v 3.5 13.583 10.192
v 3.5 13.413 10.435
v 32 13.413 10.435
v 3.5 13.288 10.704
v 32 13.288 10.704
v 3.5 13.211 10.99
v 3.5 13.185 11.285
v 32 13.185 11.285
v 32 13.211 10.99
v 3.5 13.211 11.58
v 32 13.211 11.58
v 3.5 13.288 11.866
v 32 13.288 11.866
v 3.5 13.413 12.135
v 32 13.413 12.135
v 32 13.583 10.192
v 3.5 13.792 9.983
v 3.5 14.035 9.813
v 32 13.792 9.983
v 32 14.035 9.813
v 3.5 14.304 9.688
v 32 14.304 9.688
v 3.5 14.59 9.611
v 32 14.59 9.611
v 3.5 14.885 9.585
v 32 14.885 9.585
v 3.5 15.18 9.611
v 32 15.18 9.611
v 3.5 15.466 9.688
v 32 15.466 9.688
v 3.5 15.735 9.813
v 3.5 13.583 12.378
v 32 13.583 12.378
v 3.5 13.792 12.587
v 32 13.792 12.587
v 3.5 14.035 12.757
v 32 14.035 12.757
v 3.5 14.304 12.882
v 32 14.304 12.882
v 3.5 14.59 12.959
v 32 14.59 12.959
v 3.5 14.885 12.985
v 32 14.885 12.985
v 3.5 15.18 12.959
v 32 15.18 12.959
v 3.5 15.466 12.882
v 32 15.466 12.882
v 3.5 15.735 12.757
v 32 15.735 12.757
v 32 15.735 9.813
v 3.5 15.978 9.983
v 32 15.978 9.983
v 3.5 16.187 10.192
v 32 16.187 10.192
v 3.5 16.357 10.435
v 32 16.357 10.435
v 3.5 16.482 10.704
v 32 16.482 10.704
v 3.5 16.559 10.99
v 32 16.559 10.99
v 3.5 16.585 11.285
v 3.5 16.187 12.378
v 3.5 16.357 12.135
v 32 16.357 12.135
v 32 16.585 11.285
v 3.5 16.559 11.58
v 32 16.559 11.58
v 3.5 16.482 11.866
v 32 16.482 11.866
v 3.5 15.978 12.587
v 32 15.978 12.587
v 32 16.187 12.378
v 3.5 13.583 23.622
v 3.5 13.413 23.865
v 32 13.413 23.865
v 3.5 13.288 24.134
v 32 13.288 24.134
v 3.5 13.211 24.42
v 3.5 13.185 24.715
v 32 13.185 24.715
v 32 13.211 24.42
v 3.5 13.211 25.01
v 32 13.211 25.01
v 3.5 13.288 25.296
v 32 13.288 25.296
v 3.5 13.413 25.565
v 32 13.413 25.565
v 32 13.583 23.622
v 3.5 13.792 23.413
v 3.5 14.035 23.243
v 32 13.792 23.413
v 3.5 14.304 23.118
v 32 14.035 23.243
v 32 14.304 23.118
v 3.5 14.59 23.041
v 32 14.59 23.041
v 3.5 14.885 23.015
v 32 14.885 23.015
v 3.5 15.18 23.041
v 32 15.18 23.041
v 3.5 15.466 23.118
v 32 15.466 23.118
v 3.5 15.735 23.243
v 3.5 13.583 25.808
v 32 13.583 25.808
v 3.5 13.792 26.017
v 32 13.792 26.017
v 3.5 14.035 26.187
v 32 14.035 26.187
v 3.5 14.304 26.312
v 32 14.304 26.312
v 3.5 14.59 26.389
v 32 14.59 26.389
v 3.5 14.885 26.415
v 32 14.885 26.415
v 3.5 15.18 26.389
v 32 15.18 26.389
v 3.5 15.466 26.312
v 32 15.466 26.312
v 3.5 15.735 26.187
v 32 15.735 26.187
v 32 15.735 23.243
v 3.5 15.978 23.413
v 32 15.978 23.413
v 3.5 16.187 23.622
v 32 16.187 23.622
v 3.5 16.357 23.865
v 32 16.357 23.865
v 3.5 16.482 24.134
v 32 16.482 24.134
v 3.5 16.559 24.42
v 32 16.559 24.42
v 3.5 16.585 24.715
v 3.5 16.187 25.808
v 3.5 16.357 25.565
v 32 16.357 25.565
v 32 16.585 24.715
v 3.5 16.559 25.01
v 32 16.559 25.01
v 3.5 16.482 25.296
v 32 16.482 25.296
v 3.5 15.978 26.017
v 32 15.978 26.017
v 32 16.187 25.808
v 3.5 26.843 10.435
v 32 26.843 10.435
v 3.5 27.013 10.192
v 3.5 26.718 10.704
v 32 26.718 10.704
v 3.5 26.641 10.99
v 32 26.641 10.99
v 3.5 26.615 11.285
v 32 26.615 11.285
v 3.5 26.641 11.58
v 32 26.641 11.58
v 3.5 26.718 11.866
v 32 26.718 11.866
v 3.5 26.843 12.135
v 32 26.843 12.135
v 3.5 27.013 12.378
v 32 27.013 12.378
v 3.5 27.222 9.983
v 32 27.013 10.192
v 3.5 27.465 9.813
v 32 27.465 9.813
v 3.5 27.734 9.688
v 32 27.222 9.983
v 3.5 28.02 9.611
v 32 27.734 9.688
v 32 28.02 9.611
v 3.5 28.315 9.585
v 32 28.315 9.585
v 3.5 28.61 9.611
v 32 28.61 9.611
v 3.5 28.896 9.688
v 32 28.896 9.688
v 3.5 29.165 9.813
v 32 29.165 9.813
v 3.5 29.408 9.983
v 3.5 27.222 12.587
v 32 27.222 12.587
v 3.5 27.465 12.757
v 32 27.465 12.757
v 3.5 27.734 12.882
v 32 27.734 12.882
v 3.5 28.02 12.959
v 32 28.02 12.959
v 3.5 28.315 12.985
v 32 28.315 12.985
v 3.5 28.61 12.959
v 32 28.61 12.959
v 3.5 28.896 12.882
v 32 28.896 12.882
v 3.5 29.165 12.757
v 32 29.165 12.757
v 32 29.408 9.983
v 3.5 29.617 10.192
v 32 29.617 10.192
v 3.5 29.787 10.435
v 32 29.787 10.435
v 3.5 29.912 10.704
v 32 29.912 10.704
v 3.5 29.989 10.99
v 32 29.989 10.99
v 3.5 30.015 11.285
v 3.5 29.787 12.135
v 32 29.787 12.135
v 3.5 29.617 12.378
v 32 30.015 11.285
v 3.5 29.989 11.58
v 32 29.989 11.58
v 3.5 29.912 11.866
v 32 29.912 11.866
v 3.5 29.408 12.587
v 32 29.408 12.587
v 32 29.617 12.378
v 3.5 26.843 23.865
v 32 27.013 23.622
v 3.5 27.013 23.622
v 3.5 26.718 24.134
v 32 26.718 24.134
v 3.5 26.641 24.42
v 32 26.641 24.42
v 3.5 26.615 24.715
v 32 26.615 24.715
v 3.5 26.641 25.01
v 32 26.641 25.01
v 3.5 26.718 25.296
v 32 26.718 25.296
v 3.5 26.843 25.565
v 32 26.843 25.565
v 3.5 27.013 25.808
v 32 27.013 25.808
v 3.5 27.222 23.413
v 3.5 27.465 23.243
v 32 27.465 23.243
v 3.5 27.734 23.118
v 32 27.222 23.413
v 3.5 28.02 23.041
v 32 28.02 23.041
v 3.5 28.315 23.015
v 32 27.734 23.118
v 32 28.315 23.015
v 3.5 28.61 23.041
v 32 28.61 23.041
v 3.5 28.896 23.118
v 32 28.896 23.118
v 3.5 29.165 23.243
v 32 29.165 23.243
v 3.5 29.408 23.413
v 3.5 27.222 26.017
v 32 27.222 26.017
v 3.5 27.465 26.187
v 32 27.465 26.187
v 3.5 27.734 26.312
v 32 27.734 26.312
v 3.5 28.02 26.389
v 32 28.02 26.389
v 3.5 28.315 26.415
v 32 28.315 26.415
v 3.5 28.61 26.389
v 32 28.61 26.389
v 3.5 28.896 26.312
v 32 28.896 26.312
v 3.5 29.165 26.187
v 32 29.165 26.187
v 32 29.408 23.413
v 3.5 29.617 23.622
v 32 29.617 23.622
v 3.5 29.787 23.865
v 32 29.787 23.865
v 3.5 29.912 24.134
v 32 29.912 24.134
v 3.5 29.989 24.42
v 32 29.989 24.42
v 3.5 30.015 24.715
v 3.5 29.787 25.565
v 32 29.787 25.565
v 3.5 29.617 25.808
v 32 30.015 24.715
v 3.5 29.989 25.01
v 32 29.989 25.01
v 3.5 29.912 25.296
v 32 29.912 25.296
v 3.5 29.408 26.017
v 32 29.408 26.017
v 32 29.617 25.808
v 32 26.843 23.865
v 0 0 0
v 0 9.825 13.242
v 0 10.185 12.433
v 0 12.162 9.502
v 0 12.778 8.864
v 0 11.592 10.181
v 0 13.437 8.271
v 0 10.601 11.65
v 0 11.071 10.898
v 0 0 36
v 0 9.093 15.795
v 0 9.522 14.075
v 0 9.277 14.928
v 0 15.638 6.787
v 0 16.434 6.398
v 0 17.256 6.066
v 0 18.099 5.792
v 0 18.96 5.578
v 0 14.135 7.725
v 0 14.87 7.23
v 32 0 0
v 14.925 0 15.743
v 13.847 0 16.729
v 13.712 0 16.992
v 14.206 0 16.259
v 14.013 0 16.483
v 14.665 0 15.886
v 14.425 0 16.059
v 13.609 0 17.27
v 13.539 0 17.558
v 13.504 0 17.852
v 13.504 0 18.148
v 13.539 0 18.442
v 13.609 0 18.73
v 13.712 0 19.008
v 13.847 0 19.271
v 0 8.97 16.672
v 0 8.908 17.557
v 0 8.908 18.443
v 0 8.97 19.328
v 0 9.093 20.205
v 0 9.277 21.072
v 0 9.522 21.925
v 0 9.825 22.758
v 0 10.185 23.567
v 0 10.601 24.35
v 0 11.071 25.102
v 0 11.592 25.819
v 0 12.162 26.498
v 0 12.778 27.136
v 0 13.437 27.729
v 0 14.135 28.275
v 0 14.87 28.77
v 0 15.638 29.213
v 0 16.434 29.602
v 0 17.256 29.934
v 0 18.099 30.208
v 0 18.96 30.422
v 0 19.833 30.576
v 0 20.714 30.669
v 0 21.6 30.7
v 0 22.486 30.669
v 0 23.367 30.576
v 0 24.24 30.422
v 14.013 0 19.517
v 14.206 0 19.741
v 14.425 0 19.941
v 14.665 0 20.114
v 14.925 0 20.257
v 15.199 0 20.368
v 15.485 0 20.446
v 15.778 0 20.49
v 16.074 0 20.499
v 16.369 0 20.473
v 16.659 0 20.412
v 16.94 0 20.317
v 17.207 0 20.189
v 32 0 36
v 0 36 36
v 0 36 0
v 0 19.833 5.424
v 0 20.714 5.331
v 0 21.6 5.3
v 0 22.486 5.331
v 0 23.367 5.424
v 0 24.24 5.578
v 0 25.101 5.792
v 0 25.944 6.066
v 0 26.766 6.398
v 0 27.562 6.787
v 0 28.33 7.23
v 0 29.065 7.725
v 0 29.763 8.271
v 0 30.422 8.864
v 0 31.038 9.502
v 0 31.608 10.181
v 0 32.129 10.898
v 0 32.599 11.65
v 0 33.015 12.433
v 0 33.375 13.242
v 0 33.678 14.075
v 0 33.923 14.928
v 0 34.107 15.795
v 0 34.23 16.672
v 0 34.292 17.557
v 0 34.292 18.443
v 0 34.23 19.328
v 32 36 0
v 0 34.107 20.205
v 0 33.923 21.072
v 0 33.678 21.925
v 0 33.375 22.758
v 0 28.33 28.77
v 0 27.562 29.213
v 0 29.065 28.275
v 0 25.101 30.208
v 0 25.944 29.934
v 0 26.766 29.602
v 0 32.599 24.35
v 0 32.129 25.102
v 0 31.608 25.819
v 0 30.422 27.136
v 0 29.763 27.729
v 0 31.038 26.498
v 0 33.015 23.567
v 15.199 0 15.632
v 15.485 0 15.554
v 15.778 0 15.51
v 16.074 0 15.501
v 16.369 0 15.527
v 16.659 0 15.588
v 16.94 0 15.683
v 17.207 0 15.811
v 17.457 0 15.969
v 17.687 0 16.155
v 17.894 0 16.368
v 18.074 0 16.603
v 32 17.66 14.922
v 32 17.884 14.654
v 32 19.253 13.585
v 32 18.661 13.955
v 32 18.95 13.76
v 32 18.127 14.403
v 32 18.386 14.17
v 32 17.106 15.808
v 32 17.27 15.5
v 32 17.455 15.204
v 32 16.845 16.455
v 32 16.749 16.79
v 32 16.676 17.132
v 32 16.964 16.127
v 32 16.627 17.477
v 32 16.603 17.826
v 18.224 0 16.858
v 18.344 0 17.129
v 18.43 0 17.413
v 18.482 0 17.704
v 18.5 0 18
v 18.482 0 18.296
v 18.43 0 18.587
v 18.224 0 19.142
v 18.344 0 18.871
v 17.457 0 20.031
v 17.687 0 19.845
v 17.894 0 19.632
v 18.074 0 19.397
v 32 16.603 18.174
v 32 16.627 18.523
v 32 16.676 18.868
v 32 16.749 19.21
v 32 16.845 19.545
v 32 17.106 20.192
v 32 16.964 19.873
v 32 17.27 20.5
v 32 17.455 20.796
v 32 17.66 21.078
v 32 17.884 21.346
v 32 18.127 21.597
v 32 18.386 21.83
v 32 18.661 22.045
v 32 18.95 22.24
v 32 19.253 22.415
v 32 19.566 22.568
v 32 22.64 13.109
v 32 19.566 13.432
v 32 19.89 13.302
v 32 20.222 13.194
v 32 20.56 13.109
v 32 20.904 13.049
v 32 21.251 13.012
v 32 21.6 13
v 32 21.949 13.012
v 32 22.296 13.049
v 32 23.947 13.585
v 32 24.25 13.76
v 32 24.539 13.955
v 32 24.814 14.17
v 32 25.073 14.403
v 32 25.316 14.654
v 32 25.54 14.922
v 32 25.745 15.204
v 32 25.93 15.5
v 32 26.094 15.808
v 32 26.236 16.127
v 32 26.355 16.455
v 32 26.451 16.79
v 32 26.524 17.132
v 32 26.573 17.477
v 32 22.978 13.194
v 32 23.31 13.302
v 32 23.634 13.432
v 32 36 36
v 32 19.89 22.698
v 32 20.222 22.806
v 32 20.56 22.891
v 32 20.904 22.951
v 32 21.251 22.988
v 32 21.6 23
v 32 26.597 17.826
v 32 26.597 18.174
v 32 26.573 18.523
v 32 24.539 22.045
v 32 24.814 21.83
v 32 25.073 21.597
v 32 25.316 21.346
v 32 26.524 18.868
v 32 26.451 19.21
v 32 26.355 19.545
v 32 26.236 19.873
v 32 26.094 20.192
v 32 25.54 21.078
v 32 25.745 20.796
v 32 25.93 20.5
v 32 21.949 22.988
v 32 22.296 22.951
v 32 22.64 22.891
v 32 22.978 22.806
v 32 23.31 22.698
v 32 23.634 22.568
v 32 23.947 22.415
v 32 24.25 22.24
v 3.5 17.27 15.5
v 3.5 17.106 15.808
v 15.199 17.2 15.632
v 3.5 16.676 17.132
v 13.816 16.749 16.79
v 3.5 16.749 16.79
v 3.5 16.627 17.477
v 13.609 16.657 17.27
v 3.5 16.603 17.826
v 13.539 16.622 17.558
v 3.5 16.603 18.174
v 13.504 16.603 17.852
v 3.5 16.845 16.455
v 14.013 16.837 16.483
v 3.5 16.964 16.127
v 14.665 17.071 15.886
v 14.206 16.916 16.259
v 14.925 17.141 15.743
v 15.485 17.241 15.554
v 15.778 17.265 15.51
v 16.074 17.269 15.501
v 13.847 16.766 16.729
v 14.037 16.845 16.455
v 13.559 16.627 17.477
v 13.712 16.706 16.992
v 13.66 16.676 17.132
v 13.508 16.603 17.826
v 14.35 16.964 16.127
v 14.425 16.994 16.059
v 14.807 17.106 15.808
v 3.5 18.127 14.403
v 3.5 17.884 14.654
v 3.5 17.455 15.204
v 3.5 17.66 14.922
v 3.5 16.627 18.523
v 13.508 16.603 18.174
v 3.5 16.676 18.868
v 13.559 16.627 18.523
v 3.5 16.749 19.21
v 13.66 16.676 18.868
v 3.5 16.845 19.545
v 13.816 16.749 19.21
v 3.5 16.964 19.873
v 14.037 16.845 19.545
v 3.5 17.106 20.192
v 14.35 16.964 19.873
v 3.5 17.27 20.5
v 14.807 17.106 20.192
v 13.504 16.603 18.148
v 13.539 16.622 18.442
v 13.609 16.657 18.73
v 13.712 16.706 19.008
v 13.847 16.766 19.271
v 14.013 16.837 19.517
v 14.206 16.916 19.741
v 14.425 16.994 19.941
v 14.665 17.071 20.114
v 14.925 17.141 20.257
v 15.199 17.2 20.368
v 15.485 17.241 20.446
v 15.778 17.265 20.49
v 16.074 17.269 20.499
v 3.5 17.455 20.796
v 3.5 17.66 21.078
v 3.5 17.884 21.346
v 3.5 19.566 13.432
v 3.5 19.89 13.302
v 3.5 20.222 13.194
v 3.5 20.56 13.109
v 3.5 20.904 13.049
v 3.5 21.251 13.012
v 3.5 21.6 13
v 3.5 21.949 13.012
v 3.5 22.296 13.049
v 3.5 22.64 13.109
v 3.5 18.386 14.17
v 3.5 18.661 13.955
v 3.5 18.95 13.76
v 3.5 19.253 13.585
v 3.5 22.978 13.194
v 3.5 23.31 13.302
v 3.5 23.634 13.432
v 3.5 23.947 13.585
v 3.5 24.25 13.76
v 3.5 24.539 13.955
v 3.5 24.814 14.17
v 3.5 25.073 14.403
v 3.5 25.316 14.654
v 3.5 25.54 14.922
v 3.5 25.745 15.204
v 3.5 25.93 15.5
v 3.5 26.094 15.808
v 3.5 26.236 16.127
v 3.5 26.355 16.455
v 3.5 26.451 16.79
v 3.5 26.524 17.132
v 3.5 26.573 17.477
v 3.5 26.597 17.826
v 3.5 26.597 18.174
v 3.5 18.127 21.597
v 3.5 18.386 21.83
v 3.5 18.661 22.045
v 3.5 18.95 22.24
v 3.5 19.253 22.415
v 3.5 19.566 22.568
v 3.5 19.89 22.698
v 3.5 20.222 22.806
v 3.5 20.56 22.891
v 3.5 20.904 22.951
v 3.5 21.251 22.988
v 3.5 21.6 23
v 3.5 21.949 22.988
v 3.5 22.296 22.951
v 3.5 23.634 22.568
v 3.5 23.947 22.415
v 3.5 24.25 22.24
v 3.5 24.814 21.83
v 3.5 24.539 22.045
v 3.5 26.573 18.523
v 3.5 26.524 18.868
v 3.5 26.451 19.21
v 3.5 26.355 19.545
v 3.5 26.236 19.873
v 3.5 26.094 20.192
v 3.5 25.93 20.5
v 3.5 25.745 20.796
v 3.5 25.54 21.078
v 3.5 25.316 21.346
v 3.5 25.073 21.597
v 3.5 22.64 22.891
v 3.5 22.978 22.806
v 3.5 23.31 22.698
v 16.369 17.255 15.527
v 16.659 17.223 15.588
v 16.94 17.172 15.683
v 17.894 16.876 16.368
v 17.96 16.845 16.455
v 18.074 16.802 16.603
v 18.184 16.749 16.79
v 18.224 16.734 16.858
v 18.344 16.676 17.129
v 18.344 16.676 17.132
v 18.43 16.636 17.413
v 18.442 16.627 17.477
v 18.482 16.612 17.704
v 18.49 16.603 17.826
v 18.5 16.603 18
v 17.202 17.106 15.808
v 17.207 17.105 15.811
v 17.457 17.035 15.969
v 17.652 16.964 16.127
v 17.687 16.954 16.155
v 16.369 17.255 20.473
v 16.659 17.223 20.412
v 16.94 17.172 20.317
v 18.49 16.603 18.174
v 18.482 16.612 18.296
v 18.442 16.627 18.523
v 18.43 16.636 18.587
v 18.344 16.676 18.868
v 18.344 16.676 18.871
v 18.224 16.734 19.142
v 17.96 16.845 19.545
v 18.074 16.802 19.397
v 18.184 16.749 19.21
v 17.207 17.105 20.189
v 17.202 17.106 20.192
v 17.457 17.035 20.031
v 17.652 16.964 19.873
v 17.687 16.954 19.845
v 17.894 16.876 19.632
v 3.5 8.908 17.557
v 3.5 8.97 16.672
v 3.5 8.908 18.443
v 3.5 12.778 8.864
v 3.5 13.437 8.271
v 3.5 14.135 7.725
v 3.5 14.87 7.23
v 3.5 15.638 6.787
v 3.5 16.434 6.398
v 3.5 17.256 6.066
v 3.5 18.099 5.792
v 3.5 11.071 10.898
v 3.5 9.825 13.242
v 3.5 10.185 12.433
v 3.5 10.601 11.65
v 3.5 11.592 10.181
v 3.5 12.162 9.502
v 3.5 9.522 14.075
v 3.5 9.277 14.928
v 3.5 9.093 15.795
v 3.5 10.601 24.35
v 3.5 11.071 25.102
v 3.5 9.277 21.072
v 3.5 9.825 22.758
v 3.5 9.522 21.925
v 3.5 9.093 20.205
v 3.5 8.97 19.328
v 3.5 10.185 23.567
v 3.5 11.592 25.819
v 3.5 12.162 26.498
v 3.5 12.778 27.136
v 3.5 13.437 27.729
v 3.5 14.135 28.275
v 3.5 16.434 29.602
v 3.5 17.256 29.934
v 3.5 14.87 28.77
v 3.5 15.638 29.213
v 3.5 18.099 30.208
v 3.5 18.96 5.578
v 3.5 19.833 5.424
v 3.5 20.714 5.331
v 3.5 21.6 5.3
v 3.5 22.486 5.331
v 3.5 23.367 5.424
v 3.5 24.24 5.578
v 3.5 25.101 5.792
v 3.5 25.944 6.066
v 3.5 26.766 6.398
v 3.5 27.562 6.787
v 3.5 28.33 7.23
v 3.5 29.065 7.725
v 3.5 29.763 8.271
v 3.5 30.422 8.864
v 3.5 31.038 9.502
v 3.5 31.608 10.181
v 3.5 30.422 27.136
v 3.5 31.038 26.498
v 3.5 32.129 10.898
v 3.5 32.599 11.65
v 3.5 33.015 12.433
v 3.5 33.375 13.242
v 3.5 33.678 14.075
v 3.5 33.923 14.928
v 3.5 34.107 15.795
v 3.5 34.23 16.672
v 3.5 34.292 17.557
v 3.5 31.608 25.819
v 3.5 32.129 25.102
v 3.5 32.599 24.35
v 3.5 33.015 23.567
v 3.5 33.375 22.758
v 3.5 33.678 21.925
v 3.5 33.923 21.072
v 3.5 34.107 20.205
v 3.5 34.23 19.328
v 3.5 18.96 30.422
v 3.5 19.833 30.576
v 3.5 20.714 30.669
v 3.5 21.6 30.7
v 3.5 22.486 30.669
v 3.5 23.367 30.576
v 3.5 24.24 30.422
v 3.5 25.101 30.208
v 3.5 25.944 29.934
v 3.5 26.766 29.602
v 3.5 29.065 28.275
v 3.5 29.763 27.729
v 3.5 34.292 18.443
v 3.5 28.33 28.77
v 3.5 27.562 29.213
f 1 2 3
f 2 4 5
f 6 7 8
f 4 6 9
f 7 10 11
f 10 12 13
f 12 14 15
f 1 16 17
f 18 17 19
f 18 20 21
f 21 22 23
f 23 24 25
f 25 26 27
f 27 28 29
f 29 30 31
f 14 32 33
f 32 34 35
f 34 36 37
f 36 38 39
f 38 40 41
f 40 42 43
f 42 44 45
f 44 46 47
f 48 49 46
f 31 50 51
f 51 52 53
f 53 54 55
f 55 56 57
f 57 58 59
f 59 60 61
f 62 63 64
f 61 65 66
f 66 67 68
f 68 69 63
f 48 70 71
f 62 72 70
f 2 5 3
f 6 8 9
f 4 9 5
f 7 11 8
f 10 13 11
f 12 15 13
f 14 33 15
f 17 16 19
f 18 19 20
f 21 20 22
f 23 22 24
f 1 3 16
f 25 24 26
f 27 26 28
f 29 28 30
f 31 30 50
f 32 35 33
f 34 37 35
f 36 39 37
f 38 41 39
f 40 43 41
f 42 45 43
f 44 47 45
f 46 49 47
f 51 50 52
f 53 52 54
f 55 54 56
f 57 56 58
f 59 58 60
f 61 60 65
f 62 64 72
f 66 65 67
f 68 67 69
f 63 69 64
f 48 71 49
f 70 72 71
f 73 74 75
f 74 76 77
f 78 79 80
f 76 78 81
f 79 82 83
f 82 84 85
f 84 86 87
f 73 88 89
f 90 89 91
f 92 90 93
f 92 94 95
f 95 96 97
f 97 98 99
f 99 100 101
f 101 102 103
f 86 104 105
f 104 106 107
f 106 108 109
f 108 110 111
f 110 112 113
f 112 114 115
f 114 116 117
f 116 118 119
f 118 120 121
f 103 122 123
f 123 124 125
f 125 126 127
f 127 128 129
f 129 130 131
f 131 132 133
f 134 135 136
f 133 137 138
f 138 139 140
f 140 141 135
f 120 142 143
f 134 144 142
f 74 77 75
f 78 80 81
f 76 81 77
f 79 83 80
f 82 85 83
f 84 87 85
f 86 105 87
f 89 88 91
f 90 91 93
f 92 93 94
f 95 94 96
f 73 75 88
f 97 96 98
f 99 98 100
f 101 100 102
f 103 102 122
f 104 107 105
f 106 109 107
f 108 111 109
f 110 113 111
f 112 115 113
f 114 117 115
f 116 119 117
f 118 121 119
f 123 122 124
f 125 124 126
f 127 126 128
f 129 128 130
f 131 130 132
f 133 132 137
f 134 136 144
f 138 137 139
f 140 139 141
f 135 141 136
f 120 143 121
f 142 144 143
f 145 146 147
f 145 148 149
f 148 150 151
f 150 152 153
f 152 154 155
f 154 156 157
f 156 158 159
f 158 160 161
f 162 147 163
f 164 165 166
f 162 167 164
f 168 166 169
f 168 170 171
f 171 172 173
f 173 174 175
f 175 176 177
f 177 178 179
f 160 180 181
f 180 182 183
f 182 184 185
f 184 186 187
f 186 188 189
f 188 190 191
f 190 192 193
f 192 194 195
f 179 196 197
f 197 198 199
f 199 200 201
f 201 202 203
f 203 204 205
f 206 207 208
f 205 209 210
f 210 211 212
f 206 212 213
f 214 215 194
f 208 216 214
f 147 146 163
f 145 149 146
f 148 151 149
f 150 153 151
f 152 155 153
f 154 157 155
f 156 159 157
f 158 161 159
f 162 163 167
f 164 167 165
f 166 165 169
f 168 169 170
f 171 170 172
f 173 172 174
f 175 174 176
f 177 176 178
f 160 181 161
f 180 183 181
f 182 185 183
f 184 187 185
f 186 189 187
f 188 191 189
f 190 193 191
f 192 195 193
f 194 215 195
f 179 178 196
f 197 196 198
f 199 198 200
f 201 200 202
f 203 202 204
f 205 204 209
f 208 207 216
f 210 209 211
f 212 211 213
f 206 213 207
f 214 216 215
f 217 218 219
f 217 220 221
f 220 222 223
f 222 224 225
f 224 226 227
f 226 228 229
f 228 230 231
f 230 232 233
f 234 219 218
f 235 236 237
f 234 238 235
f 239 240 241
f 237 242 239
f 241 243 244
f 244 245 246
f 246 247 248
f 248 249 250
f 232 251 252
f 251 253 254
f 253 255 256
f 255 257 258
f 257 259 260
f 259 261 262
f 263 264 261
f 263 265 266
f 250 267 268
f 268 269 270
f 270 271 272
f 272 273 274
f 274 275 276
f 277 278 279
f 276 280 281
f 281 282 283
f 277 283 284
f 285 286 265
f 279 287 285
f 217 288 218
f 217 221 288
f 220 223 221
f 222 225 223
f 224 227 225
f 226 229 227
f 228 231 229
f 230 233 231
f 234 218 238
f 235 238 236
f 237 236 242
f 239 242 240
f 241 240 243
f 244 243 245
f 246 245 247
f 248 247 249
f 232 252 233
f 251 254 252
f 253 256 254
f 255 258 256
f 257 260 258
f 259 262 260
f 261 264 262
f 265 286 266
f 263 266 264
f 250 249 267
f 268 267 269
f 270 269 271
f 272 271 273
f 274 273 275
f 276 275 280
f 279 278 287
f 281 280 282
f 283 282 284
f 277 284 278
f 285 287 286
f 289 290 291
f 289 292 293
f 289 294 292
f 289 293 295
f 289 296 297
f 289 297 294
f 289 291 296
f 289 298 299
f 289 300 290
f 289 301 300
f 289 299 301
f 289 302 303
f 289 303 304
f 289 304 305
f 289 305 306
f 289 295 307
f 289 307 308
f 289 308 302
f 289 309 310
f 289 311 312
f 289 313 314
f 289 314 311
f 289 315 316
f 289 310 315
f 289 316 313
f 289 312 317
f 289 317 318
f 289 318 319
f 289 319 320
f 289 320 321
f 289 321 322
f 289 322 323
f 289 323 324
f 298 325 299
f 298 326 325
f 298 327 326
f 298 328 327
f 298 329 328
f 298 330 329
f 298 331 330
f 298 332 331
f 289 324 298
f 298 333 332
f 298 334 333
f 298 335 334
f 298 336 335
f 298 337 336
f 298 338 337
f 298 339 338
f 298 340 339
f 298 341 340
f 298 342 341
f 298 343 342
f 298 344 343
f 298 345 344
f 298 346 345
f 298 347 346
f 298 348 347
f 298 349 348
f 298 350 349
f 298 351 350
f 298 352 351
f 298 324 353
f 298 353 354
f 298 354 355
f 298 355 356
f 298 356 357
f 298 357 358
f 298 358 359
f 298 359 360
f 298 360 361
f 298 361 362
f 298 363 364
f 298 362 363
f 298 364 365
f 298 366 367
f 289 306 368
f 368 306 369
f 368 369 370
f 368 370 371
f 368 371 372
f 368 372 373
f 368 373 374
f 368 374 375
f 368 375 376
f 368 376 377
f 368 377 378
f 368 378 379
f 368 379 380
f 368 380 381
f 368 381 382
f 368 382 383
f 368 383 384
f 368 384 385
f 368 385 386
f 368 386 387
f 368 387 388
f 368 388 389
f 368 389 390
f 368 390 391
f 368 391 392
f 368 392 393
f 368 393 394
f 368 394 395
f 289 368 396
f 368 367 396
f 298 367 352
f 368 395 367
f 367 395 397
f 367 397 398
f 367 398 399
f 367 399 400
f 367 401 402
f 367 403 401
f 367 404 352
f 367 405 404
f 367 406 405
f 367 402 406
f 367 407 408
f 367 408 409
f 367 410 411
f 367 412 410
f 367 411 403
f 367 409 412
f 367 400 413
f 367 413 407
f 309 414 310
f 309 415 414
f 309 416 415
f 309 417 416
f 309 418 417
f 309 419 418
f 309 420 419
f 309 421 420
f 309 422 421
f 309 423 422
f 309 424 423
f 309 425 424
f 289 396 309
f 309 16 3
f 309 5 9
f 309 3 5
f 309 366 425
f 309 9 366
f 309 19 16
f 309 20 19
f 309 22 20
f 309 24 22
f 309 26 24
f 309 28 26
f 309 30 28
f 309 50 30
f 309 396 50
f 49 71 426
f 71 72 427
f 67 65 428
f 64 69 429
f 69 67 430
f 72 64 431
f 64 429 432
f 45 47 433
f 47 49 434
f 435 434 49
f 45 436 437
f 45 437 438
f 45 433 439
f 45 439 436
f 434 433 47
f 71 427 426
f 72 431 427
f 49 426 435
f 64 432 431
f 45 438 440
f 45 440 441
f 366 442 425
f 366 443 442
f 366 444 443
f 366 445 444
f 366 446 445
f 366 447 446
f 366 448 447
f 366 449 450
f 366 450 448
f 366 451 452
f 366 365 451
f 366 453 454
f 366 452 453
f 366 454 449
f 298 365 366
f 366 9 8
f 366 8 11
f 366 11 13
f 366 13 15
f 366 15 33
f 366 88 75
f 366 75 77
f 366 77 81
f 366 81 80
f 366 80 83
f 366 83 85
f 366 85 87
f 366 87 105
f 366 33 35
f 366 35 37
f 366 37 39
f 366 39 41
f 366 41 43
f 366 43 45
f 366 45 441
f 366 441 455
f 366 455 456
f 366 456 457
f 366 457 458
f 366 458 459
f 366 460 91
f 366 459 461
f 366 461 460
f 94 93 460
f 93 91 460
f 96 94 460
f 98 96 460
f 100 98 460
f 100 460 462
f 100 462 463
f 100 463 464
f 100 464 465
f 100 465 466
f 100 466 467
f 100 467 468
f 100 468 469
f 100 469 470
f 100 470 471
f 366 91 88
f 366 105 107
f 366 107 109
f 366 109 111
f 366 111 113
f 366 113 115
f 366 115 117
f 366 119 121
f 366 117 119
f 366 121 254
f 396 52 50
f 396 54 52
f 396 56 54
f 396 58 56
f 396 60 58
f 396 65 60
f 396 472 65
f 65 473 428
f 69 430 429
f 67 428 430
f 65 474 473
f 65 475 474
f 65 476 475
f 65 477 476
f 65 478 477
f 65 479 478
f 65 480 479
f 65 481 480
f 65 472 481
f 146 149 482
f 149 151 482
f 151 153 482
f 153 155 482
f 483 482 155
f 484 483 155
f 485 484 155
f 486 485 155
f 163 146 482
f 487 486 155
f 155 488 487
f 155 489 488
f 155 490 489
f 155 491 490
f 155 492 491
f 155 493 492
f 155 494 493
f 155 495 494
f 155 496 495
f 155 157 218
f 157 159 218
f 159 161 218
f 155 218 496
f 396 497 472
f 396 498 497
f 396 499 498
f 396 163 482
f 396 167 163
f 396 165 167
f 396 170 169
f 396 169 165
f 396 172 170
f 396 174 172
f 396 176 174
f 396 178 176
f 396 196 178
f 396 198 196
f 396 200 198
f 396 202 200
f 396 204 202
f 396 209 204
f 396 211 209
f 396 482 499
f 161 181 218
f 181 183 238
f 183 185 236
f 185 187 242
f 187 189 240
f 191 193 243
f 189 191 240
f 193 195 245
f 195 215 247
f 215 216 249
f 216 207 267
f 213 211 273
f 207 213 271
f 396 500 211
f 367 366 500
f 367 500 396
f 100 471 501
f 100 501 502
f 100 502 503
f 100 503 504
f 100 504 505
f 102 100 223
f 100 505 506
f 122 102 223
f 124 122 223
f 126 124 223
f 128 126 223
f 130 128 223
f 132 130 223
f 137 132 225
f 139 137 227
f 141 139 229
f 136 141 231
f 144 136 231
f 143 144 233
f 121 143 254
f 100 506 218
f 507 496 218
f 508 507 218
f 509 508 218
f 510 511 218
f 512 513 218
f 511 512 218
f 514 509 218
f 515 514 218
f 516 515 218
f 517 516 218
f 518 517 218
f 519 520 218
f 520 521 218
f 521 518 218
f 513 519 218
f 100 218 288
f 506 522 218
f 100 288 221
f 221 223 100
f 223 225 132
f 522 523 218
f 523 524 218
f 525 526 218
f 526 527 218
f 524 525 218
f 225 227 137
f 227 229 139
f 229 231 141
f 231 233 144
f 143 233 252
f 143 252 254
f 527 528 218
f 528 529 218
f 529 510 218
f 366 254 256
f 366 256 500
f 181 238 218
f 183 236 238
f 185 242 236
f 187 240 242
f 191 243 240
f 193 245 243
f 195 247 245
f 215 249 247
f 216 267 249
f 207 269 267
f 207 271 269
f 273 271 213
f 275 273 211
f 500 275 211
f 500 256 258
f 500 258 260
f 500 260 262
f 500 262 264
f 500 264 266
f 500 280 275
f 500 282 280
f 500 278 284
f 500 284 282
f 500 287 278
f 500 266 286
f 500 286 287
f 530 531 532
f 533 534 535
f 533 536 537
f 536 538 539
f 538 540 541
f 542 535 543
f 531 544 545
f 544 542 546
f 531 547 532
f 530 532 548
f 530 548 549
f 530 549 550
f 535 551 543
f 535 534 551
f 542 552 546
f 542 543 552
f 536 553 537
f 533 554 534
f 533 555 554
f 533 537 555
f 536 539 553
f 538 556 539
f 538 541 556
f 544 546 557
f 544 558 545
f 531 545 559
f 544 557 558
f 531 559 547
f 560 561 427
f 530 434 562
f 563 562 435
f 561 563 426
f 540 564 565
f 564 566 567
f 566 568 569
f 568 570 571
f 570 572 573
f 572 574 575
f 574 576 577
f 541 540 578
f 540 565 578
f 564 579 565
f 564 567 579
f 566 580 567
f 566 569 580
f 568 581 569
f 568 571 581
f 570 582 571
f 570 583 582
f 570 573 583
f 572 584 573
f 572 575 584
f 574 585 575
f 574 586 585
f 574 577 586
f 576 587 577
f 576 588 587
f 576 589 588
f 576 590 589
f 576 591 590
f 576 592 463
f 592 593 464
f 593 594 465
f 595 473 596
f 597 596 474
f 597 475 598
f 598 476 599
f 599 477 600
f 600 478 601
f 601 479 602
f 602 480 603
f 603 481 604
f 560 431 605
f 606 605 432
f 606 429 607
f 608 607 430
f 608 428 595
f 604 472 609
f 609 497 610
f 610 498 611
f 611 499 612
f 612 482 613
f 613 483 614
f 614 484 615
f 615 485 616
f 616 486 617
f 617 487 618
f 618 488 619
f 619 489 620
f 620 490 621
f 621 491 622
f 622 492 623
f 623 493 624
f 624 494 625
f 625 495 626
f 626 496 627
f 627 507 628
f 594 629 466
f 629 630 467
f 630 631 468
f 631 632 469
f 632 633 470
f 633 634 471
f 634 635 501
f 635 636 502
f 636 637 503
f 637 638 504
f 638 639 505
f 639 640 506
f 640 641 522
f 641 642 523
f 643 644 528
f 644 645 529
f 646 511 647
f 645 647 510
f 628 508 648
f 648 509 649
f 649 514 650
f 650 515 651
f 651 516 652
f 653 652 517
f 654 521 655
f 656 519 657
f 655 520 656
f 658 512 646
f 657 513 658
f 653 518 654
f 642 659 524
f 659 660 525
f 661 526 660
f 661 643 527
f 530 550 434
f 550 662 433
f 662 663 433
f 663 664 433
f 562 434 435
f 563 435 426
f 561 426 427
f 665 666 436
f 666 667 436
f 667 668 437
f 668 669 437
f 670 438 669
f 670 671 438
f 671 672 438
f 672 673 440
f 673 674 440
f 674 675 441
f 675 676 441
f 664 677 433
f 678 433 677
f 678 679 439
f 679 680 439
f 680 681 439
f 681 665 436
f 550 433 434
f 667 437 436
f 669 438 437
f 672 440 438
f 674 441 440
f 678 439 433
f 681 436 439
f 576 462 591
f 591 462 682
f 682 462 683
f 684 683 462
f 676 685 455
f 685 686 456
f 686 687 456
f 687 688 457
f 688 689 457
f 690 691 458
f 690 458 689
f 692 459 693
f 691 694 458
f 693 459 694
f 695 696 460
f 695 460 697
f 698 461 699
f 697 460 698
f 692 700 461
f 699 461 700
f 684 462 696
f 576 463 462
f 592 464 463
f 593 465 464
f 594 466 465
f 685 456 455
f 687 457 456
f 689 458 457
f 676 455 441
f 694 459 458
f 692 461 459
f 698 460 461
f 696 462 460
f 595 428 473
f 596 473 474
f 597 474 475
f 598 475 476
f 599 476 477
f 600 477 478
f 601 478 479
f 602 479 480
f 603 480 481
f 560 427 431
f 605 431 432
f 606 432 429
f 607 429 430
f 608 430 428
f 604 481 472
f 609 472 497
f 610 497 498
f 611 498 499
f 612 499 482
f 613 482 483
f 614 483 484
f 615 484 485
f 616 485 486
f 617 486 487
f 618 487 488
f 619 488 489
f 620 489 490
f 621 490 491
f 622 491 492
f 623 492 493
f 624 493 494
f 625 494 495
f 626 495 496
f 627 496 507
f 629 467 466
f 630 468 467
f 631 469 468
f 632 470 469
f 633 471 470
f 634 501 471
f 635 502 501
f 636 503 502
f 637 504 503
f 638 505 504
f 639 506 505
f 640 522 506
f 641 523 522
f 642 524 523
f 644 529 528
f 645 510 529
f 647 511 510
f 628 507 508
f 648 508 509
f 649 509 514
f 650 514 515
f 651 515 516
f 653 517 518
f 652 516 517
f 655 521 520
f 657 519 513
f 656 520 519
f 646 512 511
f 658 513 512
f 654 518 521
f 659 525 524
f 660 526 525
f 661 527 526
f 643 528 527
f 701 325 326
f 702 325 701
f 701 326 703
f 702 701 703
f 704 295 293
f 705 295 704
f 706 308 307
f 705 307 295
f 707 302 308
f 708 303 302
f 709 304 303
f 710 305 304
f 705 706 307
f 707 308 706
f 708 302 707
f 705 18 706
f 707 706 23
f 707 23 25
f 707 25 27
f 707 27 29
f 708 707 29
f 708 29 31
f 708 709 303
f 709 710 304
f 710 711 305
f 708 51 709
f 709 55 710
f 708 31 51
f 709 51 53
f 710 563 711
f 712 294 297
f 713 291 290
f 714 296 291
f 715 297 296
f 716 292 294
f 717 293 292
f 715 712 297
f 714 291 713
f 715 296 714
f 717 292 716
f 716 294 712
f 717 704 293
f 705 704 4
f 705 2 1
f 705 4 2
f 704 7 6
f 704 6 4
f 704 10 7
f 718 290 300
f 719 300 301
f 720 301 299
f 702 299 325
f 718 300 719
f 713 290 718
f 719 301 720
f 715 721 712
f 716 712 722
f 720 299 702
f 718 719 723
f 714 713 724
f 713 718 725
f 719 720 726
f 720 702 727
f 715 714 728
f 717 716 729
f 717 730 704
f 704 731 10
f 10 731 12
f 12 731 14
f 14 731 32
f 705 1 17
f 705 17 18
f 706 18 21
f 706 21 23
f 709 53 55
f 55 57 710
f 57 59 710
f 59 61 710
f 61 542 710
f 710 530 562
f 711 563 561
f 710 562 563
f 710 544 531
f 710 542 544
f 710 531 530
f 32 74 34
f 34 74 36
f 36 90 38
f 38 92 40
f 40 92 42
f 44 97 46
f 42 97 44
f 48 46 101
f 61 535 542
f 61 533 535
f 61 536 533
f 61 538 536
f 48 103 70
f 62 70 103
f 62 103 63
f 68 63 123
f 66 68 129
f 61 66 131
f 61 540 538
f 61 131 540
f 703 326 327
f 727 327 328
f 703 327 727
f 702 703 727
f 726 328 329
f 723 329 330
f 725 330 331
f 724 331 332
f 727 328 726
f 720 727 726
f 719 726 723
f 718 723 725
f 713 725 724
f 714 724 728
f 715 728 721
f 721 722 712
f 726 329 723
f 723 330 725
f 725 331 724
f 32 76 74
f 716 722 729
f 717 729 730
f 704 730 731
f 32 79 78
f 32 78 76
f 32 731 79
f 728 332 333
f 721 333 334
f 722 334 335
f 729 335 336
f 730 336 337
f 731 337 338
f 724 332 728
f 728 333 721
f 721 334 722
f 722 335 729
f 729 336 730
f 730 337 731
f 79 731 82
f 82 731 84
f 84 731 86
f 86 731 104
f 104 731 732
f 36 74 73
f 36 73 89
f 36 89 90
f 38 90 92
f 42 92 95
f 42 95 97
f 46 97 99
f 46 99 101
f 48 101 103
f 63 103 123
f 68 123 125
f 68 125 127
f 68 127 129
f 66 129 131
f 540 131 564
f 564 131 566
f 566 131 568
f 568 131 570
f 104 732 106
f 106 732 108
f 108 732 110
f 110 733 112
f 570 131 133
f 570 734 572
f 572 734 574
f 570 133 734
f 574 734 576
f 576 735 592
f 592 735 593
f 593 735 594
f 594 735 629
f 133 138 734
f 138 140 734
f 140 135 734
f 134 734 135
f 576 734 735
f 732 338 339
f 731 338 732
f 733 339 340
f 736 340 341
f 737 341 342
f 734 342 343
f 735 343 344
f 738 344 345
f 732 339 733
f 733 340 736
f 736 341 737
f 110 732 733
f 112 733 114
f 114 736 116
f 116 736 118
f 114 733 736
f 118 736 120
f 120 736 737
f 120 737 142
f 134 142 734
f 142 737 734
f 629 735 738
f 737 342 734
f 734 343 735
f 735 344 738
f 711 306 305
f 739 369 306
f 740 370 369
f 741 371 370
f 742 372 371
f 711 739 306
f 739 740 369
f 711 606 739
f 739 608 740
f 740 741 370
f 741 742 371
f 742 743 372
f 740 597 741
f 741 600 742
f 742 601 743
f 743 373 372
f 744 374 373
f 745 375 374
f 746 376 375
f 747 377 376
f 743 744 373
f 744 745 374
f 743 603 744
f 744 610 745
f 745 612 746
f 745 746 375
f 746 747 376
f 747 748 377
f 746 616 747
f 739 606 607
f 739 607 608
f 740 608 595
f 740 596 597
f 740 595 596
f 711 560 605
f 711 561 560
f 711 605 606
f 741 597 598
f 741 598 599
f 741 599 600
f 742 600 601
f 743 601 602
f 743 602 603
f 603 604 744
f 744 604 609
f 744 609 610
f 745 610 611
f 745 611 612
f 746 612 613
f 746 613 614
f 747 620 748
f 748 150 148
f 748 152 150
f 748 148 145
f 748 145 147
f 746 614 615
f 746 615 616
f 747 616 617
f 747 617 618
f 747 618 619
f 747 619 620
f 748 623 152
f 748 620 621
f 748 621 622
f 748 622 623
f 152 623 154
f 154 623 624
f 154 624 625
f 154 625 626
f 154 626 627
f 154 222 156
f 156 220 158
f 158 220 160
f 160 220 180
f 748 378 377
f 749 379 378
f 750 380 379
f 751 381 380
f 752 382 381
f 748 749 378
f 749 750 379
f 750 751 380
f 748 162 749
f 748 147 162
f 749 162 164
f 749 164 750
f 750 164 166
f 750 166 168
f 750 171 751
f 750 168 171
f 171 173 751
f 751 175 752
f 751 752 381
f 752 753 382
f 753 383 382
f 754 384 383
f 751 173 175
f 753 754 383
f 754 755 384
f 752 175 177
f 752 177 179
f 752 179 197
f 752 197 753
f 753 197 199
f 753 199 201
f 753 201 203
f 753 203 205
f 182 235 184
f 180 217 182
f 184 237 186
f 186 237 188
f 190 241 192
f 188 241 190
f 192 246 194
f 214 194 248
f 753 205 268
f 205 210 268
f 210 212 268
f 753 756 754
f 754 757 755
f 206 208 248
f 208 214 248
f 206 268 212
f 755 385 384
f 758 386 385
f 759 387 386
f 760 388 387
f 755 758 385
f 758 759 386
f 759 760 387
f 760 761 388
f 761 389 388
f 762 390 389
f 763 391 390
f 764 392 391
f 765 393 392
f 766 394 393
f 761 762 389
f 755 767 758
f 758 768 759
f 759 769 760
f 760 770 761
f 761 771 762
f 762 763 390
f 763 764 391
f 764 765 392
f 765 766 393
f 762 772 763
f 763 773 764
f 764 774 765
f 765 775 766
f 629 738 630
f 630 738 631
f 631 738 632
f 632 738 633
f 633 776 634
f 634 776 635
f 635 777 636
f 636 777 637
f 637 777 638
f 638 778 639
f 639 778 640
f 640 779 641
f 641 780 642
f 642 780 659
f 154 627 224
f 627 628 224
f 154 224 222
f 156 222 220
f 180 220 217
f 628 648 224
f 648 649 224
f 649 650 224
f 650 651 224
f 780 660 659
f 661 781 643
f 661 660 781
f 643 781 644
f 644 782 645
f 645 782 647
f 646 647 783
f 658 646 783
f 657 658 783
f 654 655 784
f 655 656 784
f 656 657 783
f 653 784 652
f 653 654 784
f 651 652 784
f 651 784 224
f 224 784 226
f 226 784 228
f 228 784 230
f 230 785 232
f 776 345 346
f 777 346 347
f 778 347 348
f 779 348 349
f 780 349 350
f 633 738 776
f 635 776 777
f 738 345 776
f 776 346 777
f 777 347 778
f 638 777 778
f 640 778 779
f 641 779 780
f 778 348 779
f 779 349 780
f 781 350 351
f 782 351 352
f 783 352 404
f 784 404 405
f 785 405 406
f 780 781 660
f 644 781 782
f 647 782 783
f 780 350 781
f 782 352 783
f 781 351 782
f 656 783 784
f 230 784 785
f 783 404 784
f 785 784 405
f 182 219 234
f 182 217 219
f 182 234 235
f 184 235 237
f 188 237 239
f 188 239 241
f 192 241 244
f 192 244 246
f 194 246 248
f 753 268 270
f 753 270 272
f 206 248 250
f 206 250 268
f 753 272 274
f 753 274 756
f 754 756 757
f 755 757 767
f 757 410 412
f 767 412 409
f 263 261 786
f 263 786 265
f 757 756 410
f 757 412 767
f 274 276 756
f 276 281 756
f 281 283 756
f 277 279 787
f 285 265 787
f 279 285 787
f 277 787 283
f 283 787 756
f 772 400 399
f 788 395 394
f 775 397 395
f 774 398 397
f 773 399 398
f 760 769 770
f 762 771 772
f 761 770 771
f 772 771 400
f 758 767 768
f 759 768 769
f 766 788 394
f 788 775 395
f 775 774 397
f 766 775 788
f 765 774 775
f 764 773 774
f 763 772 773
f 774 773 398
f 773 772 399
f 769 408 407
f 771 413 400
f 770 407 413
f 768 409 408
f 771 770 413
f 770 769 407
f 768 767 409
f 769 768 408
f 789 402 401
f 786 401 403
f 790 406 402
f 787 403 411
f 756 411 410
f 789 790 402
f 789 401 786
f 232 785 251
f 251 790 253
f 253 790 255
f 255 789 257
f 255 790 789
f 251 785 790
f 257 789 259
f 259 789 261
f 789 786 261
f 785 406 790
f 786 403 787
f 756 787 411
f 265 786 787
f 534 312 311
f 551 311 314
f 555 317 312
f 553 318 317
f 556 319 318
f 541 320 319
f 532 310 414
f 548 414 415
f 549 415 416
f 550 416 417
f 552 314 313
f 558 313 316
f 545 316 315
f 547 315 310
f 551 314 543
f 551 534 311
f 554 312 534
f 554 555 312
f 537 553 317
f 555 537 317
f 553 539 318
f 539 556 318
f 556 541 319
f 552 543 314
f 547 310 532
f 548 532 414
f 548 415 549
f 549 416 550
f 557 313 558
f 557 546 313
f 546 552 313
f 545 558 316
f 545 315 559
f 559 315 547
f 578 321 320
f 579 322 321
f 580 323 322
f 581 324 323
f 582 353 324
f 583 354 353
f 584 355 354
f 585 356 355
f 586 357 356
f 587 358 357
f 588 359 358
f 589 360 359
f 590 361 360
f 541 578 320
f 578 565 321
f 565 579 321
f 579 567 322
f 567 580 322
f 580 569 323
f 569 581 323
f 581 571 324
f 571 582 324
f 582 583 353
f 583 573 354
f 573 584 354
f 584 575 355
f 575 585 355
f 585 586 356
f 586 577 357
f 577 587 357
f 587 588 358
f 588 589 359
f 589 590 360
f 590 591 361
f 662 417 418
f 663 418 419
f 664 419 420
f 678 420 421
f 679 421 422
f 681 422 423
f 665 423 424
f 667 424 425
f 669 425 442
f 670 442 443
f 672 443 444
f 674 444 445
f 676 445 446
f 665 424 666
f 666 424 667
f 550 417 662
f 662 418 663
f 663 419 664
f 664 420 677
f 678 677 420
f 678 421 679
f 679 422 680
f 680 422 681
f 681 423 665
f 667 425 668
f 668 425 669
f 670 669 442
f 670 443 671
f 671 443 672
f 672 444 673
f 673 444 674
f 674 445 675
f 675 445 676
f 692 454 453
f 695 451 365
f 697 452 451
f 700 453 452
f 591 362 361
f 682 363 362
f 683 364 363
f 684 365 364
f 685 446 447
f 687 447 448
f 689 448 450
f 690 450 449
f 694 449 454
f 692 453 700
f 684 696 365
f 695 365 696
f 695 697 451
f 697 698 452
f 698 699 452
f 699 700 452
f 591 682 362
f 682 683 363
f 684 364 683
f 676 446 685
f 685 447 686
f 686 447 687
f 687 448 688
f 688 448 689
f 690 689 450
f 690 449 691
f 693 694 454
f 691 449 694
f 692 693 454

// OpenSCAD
// file: common.scad
// Common parameters for the window-opener brackets.
//
// Units: millimetres. All parts share these values so changes propagate.
// Render with:
//   openscad -o sash-bracket.stl sash-bracket.scad
//   openscad -o frame-bracket.stl frame-bracket.scad

// -------- hole / clearance sizes --------
M4_HOLE      = 4.5;   // self-tapper clearance in PVC
M6_CLEAR     = 6.5;   // clearance for M6 rod-end shank
M6_TAP       = 5.0;   // tap drill for M6 (tap-to-size in post)

// -------- target window --------
// Reference only — used by consumers of these bracket CAD files.
WIN_WIDTH    = 845;
WIN_HEIGHT   = 1325;
D_FROM_HINGE = 120;   // moving-anchor offset from the hinge side

// -------- KP08 pillow-block bearing (per grema3d datasheet, 2026-05-13) --------
// Datasheet variable names (KP08 column, shaft d = 8 mm):
//   L  = 55  total base width PERPENDICULAR to bore
//   A  = 13  body width ALONG bore (the bearing axis)
//   J  = 42  bolt-hole spacing (c-to-c)
//   N  = 5   bolt-hole diameter (M5)
//   H  = 14  base bottom → bore centre  (CRITICAL — was 17 in earlier guess)
//   H1 = 5   base thickness
//   H2 = 28  total height
//
// SCAD variable names retained for backwards-compat with rig-*.scad files,
// but their MEANINGS are now spec-driven, not measured-guess:
//   KP08_BASE_L      → L  (along Y, perpendicular to lead screw)
//   KP08_BASE_W      → A  (along X, along lead screw)
//   KP08_HOLE_SPACING → J
//   KP08_HOLE_D       → N (M5 clearance)
//   KP08_BORE_HEIGHT  → H
//   KP08_BODY_W       → body width along Y (perpendicular to bore)
//   KP08_TOTAL_H      → H2
KP08_BASE_L       = 55;       // L — base width perpendicular to bore
KP08_BASE_W       = 13;       // A — width ALONG bore axis (NB: lead screw direction)
KP08_HOLE_SPACING = 42;       // J — bolt-hole c-to-c
KP08_HOLE_D       = 5.5;      // M5 clearance (N = 5 mm bolt, + a hair)
KP08_HOLE_SLOT_L  = 8;        // slot length (legacy; some KP08s have slotted holes)
KP08_BORE_HEIGHT  = 14;       // H — base bottom to bore centre
KP08_BODY_W       = 30;       // approximate body width perpendicular to bore
KP08_TOTAL_H      = 28;       // H2 — total height

// -------- Prusa MK3 brass nut (per piese3d datasheet, 2026-05-13) --------
// Datasheet (Tr8x8 brass nut for MK3):
//   Flange OD      = 25       (was incorrectly measured as 19 — 19 is the
//                              bolt-hole *circle* diameter, not the flange OD)
//   Flange thk     = 4
//   Body OD        = 10
//   Body length    = 10
//   Total length   = 14       (= flange thk + body length)
//   Bolt circle    = Ø19      with 4 holes at 90°: 2× M3 threaded
//                              (vertically opposed) + 2× Ø4.1 clearance
//                              (horizontally opposed)
PRUSA_NUT_FLANGE_D       = 25;     // outer flange OD
PRUSA_NUT_FLANGE_THK     = 4;
PRUSA_NUT_BODY_D         = 10;
PRUSA_NUT_BODY_L         = 10;
PRUSA_NUT_TOTAL_L        = PRUSA_NUT_FLANGE_THK + PRUSA_NUT_BODY_L; // 14
PRUSA_NUT_BOLT_CIRCLE_D  = 19;     // diameter on which the 4 holes sit
PRUSA_NUT_M3_HOLE_D      = 3.4;    // M3 clearance (for the carriage side)
PRUSA_NUT_CLEAR_HOLE_D   = 4.1;    // the 2× Ø4.1 holes in the nut flange

// Legacy alias retained so existing rig-carriage.scad keeps compiling.
// Square-pattern spacing equivalent to the 19 mm bolt circle (diagonal 19,
// side = 19/√2 ≈ 13.43). Update rig-carriage.scad to use BOLT_CIRCLE_D for
// the correct alternating-hole pattern; this approximation gets close.
PRUSA_NUT_M3_SPACING     = 13.43;

// -------- LDO 42STH48-1684MAC NEMA17 (per LDO datasheet, 2026-05-13) --------
// Per the official LDO drawing (kb-3d datasheet):
//   Face            42.3 × 42.3 MAX
//   Body length     48 MAX
//   Mounting holes  4× M3 on 31 × 31 mm pattern, depth 4.5 min
//   Pilot boss      Ø22 (-0/-0.052)            ← was 22.5 in earlier guess
//   Shaft           Ø5 -0.002/-0.012, 24 ± 0.5 long
//   Shaft has a 15 mm flat (D-cut), 4.5 mm deep — not modelled here
NEMA17_FACE         = 42.3;
NEMA17_BODY_L       = 48;
NEMA17_HOLE_SPACING = 31;
NEMA17_HOLE_D       = 3.4;     // M3 clearance
NEMA17_HOLE_DEPTH   = 4.5;     // minimum tap depth into the motor face
NEMA17_BORE_D       = 22;      // pilot-boss OD (fits matching counterbore)
NEMA17_SHAFT_D      = 5;
NEMA17_SHAFT_L      = 24;
NEMA17_SHAFT_FLAT_L = 15;      // D-cut flat length, for coupler grip
NEMA17_SHAFT_FLAT_D = 4.5;     // D-cut depth from full Ø

// -------- Coupler --------
COUPLER_OD = 19;
COUPLER_L  = 25;

// -------- Lead screw --------
LEAD_SCREW_D    = 8;       // Tr8x8 outer diameter
LEAD_SCREW_LEAD = 8;       // 8 mm linear travel per revolution

// -------- bracket common --------
BRACKET_WIDTH  = 190;  // along the top rail (X axis in both parts)
PLATE_THK      = 5;    // plate wall thickness
PRINT_CLR      = 0.2;  // generic printer tolerance

// Render resolution — fine enough for holes, cheap enough for iteration.
$fa = 4;
$fs = 0.3;
// main file
// Lead-screw rig — carriage.
//
// Slides along the lead screw, driven by the Prusa MK3 brass nut.
// Carries the LH M6 rod-end (CSL10) on its bottom face — that rod-end
// is what attaches the carriage to the sash bracket on the window.
//
// Anti-rotation: a parallel 8 mm smooth steel rod runs through the
// carriage at the same offset used by the motor mount and far bearing.
// The carriage has a sleeve hole for the rod (no separate bushing —
// PETG-on-steel is acceptable for this duty cycle, and a printed
// bushing can be added later if friction becomes an issue).
//
// Print orientation: bottom face (toward the rod-end) on the bed; the
// nut pocket and anti-rotation hole print upward as cavities. M3 holes
// for the Prusa nut go all the way through.
//
// Render:   openscad -o ../stl/rig-carriage.stl rig-carriage.scad

include <common.scad>;

// ---- design parameters ----
// The body needs to accommodate (perpendicular to the bore):
//   • Prusa nut flange OD = 25 (with print clearance)
//   • plus a few mm of wall around the flange counterbore
// Along the bore (X) it needs:
//   • a Prusa nut counterbore (4 mm flange thickness) + body (10 mm) = 14 mm
//   • plus material around it
// Vertical (Y):
//   • SHAFT_Y above the bottom to position the bore in the upper half so the
//     LH rod-end's M6 tap fits in the bottom face without intersecting the
//     screw bore. With 18 mm tap depth + the bore at SHAFT_Y = 21.6, leaves
//     comfortable wall.
BODY_W              = 32;     // X (along screw)   — was 50, shrunk
BODY_H              = 36;     // Y (vertical)      — kept (rod-end tap depth)
BODY_D              = 36;     // Z (across rig)    — was 50, shrunk
ANTI_ROT_OFFSET     = 30;     // must match motor mount and far bearing
ANTI_ROT_HOLE_D     = 8.4;    // 8 mm rod with print clearance for sliding fit
ROD_END_TAP_D       = 18;     // M6 tap depth for the rod-end shank
NUT_POCKET_DEPTH    = PRUSA_NUT_FLANGE_THK + 0.5; // counterbore for flange (~4.5)
NUT_FLANGE_CLEAR    = 0.4;    // clearance around the flange in its pocket

// ---- derived ----
SHAFT_Y         = BODY_H * 0.6;     // lead-screw axis sits a bit above the carriage centre,
                                    // putting the rod-end on the bottom face away from the screw

module carriage() {
  difference() {
    cube([BODY_W, BODY_H, BODY_D], center = false);

    // Lead screw clearance (full through-hole)
    translate([-1, SHAFT_Y, BODY_D / 2])
      rotate([0, 90, 0])
        cylinder(d = LEAD_SCREW_D + 2, h = BODY_W + 2);

    // Prusa nut pocket — counterbore for the flange on the X- face
    translate([-1, SHAFT_Y, BODY_D / 2])
      rotate([0, 90, 0])
        cylinder(d = PRUSA_NUT_FLANGE_D + NUT_FLANGE_CLEAR, h = PRUSA_NUT_FLANGE_THK + 0.5);

    // 4× M3 mounting holes for the Prusa nut, square pattern around the lead screw
    for (dy = [-PRUSA_NUT_M3_SPACING / 2, PRUSA_NUT_M3_SPACING / 2])
      for (dz = [-PRUSA_NUT_M3_SPACING / 2, PRUSA_NUT_M3_SPACING / 2])
        translate([-1, SHAFT_Y + dy, BODY_D / 2 + dz])
          rotate([0, 90, 0])
            cylinder(d = PRUSA_NUT_M3_HOLE_D, h = BODY_W + 2);

    // Anti-rotation rod hole, parallel to the lead screw, offset by ANTI_ROT_OFFSET
    translate([-1, SHAFT_Y - ANTI_ROT_OFFSET, BODY_D / 2])
      rotate([0, 90, 0])
        cylinder(d = ANTI_ROT_HOLE_D, h = BODY_W + 2);

    // M6 tap for the LH rod-end on the BOTTOM face (Y-)
    translate([BODY_W / 2, -1, BODY_D / 2])
      rotate([-90, 0, 0])
        cylinder(d = M6_TAP, h = ROD_END_TAP_D + 1);
  }
}

carriage();
